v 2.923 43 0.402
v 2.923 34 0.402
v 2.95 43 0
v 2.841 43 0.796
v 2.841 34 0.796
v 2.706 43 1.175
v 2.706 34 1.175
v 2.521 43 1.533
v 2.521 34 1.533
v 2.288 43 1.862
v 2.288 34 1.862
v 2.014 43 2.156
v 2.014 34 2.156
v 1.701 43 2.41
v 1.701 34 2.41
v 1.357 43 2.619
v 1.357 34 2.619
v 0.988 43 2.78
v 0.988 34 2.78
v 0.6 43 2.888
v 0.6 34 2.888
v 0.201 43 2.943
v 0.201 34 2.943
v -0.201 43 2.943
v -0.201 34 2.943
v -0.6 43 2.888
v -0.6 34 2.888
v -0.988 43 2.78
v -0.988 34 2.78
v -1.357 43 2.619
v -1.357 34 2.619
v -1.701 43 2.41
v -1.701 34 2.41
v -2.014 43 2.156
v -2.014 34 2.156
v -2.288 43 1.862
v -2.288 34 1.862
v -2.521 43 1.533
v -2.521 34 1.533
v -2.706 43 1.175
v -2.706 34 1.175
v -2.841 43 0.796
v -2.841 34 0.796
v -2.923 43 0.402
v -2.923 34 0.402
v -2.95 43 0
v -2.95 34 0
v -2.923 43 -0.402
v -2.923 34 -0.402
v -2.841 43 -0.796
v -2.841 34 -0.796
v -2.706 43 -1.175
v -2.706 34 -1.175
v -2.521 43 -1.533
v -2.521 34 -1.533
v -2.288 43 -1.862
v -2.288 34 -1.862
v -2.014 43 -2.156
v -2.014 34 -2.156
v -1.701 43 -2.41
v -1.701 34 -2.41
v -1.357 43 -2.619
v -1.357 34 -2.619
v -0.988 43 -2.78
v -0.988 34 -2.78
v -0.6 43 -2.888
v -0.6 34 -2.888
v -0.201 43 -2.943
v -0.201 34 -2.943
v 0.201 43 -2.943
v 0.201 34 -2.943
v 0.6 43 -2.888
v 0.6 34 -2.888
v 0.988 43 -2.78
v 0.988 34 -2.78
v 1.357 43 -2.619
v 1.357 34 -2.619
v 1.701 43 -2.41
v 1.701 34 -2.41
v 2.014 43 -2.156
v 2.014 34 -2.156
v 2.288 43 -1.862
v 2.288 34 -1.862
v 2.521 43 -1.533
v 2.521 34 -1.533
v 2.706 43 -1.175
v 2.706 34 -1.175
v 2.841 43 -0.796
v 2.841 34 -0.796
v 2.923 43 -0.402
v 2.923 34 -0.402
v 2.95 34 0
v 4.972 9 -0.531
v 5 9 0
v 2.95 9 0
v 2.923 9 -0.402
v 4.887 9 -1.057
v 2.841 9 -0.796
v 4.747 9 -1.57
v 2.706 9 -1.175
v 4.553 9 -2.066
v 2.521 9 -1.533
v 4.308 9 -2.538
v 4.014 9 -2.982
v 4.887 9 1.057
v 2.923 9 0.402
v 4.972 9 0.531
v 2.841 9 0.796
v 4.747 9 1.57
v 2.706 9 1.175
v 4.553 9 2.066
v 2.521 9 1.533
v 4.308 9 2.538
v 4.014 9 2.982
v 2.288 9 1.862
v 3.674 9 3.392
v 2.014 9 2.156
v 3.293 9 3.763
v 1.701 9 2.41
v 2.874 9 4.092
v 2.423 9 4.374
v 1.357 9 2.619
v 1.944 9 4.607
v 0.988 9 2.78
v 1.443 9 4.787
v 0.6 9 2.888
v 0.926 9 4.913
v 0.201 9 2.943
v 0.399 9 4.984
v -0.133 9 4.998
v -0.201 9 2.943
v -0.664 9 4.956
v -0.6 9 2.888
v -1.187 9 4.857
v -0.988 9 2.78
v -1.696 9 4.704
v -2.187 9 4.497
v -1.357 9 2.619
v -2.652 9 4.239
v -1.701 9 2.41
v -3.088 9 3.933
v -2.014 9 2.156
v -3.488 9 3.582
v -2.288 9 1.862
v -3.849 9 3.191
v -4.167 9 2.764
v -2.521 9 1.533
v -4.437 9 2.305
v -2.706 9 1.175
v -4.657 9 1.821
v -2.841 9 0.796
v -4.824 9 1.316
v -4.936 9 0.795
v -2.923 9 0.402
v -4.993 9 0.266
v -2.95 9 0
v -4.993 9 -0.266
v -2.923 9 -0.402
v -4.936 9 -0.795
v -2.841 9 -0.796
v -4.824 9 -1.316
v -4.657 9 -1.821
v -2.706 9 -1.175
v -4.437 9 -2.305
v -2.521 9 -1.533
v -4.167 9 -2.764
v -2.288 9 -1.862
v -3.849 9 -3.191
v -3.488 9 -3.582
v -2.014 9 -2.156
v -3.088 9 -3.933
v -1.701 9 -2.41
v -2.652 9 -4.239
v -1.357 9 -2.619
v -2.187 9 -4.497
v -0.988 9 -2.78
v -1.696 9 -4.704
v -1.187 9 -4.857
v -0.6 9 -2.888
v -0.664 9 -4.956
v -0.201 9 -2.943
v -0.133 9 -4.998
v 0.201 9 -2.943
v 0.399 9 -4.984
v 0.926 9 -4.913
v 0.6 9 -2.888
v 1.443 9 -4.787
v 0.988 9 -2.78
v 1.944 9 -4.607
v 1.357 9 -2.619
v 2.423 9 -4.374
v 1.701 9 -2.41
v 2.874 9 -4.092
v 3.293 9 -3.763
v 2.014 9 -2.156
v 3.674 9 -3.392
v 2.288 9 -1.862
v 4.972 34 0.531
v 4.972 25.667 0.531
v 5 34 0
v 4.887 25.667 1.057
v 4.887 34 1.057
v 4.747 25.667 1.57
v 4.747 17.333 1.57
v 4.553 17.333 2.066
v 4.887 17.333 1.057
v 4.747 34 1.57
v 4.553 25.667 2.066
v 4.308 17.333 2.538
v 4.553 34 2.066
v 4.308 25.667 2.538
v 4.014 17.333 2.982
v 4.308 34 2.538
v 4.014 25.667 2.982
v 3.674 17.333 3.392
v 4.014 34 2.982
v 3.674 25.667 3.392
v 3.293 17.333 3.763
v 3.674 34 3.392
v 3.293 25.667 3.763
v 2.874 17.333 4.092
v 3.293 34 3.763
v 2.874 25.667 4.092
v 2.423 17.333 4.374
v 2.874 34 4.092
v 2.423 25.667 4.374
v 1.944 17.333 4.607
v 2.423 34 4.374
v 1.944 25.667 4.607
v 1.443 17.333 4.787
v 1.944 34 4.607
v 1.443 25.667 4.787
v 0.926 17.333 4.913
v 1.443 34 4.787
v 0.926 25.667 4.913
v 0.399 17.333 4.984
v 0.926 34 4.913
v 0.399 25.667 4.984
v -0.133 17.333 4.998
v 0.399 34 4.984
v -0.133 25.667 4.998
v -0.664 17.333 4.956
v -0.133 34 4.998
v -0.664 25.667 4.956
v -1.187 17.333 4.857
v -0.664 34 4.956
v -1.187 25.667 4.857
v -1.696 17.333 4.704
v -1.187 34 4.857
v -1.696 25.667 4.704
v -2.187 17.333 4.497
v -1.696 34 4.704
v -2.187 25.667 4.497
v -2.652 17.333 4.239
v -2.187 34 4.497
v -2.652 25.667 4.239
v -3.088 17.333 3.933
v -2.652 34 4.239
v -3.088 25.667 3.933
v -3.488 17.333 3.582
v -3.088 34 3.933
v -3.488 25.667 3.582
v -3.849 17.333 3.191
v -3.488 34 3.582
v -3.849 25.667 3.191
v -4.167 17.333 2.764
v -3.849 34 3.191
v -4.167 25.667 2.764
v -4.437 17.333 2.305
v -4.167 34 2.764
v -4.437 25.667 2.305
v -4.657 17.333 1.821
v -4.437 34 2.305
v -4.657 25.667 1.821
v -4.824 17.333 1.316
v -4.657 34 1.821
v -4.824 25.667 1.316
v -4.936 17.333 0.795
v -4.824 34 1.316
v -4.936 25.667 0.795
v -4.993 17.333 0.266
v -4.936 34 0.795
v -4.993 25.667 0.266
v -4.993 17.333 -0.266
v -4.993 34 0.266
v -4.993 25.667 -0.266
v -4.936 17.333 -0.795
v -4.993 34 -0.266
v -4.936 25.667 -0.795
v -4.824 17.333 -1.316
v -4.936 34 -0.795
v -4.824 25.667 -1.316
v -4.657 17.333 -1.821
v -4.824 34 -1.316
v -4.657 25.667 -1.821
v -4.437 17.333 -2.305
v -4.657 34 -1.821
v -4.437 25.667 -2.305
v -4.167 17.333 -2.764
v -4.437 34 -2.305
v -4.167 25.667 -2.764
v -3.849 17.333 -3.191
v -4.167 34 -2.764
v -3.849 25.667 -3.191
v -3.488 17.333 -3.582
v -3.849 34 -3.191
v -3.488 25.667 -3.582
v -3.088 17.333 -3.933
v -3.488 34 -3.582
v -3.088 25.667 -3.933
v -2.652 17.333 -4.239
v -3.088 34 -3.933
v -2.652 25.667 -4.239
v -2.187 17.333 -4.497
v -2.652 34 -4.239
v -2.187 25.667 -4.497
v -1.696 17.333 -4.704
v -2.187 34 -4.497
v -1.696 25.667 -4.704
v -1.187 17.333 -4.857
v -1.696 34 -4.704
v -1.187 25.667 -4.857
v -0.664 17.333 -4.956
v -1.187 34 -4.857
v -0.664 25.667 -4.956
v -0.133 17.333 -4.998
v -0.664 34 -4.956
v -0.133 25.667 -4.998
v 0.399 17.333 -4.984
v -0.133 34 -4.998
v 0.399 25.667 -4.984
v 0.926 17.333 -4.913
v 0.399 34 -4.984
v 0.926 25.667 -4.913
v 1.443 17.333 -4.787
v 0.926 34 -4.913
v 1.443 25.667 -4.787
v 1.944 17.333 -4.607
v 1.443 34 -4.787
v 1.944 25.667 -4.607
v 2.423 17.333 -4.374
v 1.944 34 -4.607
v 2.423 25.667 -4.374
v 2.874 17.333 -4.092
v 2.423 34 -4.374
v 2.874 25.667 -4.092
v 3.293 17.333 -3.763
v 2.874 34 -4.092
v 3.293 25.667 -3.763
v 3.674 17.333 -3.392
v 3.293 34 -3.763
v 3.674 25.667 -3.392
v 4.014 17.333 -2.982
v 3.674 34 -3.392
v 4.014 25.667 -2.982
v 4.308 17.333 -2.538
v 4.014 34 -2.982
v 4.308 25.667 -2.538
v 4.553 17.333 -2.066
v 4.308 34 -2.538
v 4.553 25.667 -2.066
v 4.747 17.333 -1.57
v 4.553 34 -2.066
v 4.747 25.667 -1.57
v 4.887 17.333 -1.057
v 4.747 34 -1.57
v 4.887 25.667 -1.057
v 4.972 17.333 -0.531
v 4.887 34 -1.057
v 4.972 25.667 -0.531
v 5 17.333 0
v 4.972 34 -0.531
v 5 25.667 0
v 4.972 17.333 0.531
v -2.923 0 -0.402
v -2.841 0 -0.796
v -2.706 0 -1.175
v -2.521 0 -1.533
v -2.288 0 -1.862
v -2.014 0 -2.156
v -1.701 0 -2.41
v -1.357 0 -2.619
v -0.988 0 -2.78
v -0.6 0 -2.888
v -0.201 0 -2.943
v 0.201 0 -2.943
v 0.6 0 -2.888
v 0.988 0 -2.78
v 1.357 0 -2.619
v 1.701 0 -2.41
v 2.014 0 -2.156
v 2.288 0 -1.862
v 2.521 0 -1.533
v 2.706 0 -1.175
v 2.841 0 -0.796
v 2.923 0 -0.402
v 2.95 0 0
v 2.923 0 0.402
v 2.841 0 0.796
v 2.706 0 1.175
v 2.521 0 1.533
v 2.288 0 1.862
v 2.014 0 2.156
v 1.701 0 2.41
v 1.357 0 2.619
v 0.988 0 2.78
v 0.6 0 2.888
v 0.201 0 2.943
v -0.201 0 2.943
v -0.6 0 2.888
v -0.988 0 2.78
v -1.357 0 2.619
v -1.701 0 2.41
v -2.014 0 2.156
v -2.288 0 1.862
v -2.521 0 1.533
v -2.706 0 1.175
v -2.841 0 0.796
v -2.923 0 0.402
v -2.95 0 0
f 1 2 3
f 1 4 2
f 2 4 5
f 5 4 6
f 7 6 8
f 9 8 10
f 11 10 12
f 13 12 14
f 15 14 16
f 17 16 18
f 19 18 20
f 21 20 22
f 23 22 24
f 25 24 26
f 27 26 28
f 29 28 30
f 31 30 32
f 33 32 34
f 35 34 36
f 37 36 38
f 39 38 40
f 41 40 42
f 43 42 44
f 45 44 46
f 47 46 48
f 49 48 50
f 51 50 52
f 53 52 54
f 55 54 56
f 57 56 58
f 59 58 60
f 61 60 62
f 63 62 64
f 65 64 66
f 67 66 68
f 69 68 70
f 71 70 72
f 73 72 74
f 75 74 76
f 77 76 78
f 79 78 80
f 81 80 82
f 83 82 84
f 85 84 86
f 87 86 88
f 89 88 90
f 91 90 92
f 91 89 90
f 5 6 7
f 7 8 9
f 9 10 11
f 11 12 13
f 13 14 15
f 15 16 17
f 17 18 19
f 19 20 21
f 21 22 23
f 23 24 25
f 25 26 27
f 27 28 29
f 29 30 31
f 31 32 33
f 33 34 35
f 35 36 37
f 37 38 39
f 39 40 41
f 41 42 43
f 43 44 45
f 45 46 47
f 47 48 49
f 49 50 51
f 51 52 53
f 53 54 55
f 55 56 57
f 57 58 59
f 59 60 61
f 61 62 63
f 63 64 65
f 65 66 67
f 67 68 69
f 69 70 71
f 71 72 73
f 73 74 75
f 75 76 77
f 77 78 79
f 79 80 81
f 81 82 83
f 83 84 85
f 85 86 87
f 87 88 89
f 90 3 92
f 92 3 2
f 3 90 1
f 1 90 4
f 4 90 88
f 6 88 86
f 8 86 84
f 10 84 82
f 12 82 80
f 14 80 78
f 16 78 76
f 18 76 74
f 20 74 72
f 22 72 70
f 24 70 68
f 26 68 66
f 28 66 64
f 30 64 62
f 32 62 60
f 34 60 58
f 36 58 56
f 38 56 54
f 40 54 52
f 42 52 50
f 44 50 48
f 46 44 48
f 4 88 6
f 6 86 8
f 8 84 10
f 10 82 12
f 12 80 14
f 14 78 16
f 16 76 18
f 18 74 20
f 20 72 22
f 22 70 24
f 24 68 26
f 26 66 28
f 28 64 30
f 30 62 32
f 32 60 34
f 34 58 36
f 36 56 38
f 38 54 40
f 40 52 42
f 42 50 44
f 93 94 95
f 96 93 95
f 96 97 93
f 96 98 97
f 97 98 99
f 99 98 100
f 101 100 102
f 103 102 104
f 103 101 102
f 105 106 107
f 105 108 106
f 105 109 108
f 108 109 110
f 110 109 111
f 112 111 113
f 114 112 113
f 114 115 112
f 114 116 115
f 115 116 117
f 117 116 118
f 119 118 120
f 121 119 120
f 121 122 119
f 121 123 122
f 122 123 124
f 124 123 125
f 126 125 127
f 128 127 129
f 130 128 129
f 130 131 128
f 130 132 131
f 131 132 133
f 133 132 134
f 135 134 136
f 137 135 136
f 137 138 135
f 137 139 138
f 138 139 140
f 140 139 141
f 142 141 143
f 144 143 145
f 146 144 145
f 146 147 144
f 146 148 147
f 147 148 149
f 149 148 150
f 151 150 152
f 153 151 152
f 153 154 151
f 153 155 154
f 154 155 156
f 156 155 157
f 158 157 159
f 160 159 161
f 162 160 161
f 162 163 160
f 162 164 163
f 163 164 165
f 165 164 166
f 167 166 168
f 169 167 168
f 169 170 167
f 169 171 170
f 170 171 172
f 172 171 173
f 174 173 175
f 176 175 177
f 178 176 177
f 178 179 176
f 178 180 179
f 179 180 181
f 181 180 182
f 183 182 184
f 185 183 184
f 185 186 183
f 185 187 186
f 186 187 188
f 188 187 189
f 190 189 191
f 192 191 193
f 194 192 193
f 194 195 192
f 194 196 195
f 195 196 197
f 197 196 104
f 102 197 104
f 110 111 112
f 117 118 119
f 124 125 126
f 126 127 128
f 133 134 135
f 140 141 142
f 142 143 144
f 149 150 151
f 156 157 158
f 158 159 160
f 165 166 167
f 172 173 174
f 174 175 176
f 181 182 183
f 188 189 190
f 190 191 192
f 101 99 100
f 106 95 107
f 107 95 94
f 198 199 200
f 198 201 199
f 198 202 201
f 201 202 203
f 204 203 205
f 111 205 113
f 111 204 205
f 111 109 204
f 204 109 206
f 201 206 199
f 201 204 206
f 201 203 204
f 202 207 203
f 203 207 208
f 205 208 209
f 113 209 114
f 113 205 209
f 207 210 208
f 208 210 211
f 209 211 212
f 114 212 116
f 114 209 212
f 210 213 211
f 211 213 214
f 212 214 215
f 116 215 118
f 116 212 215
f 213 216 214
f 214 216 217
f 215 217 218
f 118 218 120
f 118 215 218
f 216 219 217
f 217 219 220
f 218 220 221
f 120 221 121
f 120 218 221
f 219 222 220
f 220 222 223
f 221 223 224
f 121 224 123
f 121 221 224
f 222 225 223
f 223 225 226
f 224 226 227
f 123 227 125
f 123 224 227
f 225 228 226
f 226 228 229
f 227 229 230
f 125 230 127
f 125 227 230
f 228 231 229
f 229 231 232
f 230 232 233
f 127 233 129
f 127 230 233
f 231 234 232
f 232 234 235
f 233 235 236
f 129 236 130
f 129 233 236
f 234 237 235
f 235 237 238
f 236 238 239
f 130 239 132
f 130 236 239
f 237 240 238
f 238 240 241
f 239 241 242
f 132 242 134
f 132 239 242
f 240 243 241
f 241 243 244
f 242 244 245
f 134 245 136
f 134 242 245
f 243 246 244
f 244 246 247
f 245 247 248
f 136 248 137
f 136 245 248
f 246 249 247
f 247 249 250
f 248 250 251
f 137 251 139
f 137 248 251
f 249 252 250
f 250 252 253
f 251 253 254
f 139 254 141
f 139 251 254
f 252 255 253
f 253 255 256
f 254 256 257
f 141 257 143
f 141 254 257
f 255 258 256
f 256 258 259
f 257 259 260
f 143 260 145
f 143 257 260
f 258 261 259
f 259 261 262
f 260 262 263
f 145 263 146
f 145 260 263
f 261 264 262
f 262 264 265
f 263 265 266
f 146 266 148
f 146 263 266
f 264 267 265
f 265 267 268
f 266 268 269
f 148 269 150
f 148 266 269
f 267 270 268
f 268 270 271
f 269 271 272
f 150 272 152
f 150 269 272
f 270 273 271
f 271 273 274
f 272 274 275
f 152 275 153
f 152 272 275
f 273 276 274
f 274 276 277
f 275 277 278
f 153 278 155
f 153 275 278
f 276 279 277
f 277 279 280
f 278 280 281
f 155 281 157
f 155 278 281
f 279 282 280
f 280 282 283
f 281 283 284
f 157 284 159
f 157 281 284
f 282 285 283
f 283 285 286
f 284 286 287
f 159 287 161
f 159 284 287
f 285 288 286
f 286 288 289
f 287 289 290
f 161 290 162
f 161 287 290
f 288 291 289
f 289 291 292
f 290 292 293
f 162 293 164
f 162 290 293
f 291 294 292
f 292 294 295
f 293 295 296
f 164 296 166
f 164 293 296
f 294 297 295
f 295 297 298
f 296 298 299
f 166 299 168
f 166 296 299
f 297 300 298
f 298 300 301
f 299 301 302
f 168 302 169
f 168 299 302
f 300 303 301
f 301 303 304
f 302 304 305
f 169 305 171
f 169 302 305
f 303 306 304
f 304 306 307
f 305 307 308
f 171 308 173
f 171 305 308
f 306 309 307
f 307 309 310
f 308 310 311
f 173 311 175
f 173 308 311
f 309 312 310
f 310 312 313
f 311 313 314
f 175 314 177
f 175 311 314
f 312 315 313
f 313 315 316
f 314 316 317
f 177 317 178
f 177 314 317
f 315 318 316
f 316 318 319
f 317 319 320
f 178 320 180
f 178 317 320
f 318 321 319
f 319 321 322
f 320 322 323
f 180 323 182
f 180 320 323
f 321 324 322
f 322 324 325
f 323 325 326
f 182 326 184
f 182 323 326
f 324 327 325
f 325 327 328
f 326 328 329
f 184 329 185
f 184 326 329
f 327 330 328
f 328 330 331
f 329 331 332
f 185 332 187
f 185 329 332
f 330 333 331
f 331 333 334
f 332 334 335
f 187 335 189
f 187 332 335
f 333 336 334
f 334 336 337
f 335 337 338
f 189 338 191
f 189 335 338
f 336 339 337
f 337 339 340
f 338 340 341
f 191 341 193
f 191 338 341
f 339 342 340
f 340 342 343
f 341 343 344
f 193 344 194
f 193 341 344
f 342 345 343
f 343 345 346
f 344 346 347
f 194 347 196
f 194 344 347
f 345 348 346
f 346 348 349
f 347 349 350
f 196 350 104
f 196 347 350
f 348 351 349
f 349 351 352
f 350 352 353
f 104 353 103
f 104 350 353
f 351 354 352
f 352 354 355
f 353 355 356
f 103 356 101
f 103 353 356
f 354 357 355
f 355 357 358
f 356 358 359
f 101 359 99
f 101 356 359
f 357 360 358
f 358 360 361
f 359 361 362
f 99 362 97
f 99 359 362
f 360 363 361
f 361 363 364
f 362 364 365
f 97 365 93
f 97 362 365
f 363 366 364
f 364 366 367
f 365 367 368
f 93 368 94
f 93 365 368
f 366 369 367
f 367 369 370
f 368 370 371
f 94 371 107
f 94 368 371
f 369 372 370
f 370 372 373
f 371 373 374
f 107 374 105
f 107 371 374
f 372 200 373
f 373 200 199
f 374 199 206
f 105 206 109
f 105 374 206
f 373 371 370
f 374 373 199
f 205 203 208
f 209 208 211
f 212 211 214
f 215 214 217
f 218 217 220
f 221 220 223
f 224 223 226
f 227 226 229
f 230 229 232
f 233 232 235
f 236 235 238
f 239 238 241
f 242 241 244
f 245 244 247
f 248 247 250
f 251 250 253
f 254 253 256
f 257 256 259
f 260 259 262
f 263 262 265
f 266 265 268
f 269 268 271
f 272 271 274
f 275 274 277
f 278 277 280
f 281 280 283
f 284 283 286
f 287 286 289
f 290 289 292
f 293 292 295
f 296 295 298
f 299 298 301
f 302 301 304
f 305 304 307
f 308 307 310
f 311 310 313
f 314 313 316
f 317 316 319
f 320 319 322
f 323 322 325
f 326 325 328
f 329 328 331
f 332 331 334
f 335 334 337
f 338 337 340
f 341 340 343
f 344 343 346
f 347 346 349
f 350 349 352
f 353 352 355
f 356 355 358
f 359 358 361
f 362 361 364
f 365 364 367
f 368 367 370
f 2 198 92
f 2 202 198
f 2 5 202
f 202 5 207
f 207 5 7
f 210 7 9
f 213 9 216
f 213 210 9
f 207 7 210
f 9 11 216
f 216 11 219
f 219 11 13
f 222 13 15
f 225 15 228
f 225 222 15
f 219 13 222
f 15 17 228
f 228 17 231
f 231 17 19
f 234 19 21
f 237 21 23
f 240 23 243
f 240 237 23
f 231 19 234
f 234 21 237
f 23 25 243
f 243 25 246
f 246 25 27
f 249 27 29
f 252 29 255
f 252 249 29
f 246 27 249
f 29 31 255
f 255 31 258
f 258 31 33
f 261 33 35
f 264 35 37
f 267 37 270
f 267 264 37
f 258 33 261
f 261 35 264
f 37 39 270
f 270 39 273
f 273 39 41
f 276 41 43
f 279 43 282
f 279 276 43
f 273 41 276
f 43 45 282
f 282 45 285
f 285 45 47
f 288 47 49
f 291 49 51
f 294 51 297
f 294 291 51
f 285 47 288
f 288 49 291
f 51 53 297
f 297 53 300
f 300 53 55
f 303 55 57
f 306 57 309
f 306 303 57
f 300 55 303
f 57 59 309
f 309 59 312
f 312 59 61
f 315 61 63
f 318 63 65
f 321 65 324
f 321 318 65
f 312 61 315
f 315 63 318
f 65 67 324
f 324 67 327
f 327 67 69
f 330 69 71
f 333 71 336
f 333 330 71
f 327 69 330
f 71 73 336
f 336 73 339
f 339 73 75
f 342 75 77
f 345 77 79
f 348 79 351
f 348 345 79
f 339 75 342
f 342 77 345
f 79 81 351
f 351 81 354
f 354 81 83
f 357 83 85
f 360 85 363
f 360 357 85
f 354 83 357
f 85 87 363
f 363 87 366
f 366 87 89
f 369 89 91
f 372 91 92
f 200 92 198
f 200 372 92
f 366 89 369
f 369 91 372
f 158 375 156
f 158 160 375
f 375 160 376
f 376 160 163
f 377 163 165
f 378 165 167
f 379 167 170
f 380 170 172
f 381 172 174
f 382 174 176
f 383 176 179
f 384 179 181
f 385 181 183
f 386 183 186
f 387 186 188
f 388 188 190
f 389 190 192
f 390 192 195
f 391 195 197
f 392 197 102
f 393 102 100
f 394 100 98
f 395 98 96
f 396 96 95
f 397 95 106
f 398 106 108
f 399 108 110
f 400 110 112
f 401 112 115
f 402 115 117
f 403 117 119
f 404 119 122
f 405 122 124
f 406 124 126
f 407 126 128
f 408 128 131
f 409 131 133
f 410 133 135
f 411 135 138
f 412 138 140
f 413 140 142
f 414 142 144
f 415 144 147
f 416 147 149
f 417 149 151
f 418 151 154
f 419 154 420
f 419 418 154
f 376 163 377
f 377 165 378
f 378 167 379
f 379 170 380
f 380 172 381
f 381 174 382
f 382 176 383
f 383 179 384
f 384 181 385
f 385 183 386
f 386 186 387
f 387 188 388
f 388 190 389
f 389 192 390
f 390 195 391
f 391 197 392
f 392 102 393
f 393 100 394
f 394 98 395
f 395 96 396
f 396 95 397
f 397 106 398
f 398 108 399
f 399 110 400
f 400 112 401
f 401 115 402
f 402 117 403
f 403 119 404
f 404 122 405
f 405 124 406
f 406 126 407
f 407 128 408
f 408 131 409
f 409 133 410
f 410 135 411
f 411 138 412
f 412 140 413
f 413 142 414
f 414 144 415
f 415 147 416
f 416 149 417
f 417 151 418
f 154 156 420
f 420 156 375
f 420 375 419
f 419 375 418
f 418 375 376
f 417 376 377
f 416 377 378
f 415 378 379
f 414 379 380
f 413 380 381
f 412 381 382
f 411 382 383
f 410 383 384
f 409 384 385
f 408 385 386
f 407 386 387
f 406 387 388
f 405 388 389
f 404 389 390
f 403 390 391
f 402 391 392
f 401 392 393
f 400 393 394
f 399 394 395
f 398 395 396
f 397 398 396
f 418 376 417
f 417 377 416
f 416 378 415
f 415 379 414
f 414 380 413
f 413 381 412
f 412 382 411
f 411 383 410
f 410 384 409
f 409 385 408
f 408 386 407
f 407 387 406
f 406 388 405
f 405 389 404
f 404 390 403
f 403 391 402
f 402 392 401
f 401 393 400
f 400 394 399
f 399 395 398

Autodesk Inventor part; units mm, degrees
ref_plane "YZ Plane" through (0, 0, 0) normal (1, 0, 0) x (0, 1, 0)
ref_plane "XZ Plane" through (0, 0, 0) normal (0, 1, 0) x (-1, 0, 0)
ref_plane "XY Plane" through (0, 0, 0) normal (0, 0, 1) x (1, 0, 0)
sketch "Sketch1" plane through (0, 0, 0) normal (0, 1, 0) x (-1, 0, 0)
  circle A0 centre (0, 0) radius 2.95
  dimension "d0" = 5.9
extrude "Extrusion1" add sketch "Sketch1" along normal blind 9
sketch "Sketch2" plane through (0, 9, 0) normal (0, 1, 0) x (1, 0, 0)
  circle A0 centre (0, 0) radius 5
  circle A1 centre (0, 0) radius 3
  dimension "d3" = 10
  dimension "d6" = 6
extrude "Extrusion2" add sketch "Sketch2" along normal blind 25 contours A0 | A1
sketch "Sketch3" plane through (0, 34, 0) normal (0, 1, 0) x (1, 0, 0)
  circle A0 centre (0, 0) radius 2.95 projected
  circle A1 centre (0, 0) radius 2.95
  dimension "d7" = 5.9
extrude "Extrusion3" add sketch "Sketch3" along normal blind 9
properties part number "Peg"
